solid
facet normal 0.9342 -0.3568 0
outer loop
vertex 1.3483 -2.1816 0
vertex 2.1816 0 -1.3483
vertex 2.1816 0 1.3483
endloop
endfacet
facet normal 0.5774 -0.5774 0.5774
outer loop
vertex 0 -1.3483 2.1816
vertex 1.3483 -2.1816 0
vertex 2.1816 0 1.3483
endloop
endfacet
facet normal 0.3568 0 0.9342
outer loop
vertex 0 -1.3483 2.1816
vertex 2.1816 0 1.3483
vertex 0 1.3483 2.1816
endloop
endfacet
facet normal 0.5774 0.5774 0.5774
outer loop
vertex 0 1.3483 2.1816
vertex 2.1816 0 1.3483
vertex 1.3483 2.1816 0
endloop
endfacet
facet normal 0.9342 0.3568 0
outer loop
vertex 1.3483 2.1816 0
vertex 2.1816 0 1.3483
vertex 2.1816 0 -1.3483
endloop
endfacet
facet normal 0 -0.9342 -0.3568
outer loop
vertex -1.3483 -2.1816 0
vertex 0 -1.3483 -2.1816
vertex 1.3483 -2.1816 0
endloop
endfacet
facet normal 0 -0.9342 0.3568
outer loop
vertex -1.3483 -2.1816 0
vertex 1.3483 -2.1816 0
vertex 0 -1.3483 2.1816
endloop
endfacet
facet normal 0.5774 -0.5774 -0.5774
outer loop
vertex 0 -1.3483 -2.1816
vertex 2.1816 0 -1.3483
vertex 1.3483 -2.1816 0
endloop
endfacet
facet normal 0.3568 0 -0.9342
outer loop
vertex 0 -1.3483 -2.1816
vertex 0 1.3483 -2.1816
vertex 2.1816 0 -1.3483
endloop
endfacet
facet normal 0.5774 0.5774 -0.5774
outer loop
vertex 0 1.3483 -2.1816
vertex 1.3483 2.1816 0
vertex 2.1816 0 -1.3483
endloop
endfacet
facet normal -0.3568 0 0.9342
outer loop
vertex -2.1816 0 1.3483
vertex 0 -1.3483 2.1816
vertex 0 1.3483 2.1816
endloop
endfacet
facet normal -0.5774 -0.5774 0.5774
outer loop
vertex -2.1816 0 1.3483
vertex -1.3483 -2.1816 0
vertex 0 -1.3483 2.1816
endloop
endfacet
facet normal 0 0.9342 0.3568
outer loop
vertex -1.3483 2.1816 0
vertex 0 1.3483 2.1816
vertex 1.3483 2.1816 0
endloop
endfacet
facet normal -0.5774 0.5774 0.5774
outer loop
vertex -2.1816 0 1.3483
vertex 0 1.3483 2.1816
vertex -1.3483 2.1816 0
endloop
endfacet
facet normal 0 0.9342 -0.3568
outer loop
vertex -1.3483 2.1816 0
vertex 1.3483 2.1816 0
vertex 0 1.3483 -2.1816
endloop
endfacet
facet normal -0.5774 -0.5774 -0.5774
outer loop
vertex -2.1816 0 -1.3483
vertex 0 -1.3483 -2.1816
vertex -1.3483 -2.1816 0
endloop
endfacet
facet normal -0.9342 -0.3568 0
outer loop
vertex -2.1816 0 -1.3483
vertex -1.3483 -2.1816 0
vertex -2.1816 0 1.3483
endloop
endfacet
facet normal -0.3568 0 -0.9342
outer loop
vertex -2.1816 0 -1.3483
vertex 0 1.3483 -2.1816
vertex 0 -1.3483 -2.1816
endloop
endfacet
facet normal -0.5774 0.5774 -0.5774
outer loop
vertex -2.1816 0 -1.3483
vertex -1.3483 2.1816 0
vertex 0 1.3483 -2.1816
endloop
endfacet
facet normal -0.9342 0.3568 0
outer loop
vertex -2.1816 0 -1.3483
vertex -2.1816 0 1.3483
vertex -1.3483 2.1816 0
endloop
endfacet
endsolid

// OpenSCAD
// file: ../maths_geodesic.scad
/*
	License: This code is placed in the public Domain
	Contributed By: Willliam A Adams
	August 2011
*/

// A couple of useful constants
Cpi = 3.14159;
Cphi = 1.61803399;
Cepsilon = 0.00000001;

 
// Function: clean
//
// Parameters:
//	n - A number that might be very close to zero
// Description:  
//	There are times when you want a very small number to 
// 	just be zero, instead of being that very small number.
//	This function will compare the number to an arbitrarily small 
//	number.  If it is smaller than the 'epsilon', then zero will be 
// 	returned.  Otherwise, the original number will be returned.
//

function clean(n) = (n < 0) ? ((n < -Cepsilon) ? n : 0) : 
	(n < Cepsilon) ? 0 : n; 

// Function: safediv
//
// Parameters
//	n - The numerator
//	d - The denominator
//
// Description:
//	Since division by zero is generally not a desirable thing, safediv
//	will return '0' whenever there is a division by zero.  Although this will
//	mask some erroneous division by zero errors, it is often the case
//	that you actually want this behavior.  So, it makes it convenient.
function safediv(n,d) = (d==0) ? 0 : n/d;


//==================================
// Degrees
//==================================

function DEGREES(radians) = (180/Cpi) * radians;

function RADIANS(degrees) = Cpi/180 * degrees;

function deg(deg, min=0, sec=0) = [deg, min, sec];

function deg_to_dec(d) = d[0] + d[1]/60 + d[2]/60/60;


//==================================
//  Spherical coordinates
//==================================

// create an instance of a spherical coordinate
// long - rotation around z -axis
// lat - latitude, starting at 0 == 'north pole'
// rad - distance from center
function sph(long, lat, rad=1) = [long, lat, rad];

// Convert spherical to cartesian
function sph_to_cart(s) = [
	clean(s[2]*sin(s[1])*cos(s[0])),  
	clean(s[2]*sin(s[1])*sin(s[0])),
	clean(s[2]*cos(s[1]))
	];

// Convert from cartesian to spherical
function sph_from_cart(c) = sph(
	atan2(c[1],c[0]), 
	atan2(sqrt(c[0]*c[0]+c[1]*c[1]), c[2]), 
	sqrt(c[0]*c[0]+c[1]*c[1]+c[2]*c[2])
	);

function sphu_from_cart(c, rad=1) = sph(
	atan2(c[1],c[0]), 
	atan2(sqrt(c[0]*c[0]+c[1]*c[1]), c[2]), 
	rad
	);

// compute the chord distance between two points on a sphere
function sph_dist(c1, c2) = sqrt(
	c1[2]*c1[2] + c2[2]*c2[2] - 
	2*c1[2]*c2[2]*
	((cos(c1[1])*cos(c2[1])) + cos(c1[0]-c2[0])*sin(c1[1])*sin(c2[1]))   
	);


//==========================================
//	Geodesic calculations
// 
//  Reference: Geodesic Math and How to Use It
//  By: Hugh Kenner
//  Second Paperback Edition (2003), p.74-75
//  http://www.amazon.com/Geodesic-Math-How-Hugh-Kenner/dp/0520239318
//
//  The book was used for reference, so if you want to check the math, 
//  you can plug in various numbers to various routines and see if you get
//  the same numbers in the book.
//
//  In general, there are enough routines here to implement the various
//  pieces necessary to make geodesic objects.
//==========================================

function poly_sum_interior_angles(sides) = (sides-2)*180;
function poly_single_interior_angle(pq) = poly_sum_interior_angles(pq[0])/pq[0];



// Given a set of coordinates, return the frequency
// Simply calculated by adding up the values of the coordinates
function geo_freq(xyz) = xyz[0]+xyz[1]+xyz[2];

// Convert between the 2D coordinates of vertices on the face triangle
// to the 3D vertices needed to calculate spherical coordinates
function geo_tri2_tri3(xyf) = [xyf[1], xyf[0]-xyf[1], xyf[2]-xyf[0]];

// Given coordinates for a vertex on the octahedron face
// return the spherical coordinates for the vertex
// class 1, method 1
function octa_class1(c) = sph(
	atan(safediv(c[0], c[1])),
	atan(sqrt(c[0]*c[0]+c[1]*c[1])/c[2]),
	1 
	);

function octa_class2(c) = sph(
	atan(c[0]/c[1]),
	atan( sqrt( 2*(c[0]*c[0]+c[1]*c[1])) /c[2]),
	1 
	);

function icosa_class1(c) = octa_class1(
	[
		c[0]*sin(72),  
		c[1]+c[0]*cos(72),  
		geo_freq(c)/2+c[2]/Cphi
	]);

function icosa_class2(c) = sph(
	atan([c0]/c[1]), 
	atan(sqrt(c[0]*c[0]+c[1]*c[1]))/cos(36)*c[2],
	1
	);
 
function tetra_class1(c) = octa_class1(
	[
		sqrt(3*c[0]),  
		2*c[1]-c[0],  
		(3*c[2]-c[0]-c[1])/sqrt(2)
	]);

function class1_icosa_chord_factor(v1, v2, freq) = sph_dist( 
		icosa_class1(geo_tri2_tri3( [v1[0], v1[1], freq])),
		icosa_class1(geo_tri2_tri3( [v2[0], v2[1], freq]))
	);
// main file
// file autogenerated by create_poly_array.py
// author: thanasi athanassiadis (thanasi@uchicago.edu)
// august 25, 2012

include <../platonic.scad>

// units are mm

rad = 2.564680;

poly = icosahedron(rad);

for(i = [ [0.000000,0.000000,0.000000] ])
{
    translate(i)
    display_polyhedron(poly);
}

module display_polyhedron(poly) 
{
polyhedron(points = poly[0], triangles = poly[1]);
}
